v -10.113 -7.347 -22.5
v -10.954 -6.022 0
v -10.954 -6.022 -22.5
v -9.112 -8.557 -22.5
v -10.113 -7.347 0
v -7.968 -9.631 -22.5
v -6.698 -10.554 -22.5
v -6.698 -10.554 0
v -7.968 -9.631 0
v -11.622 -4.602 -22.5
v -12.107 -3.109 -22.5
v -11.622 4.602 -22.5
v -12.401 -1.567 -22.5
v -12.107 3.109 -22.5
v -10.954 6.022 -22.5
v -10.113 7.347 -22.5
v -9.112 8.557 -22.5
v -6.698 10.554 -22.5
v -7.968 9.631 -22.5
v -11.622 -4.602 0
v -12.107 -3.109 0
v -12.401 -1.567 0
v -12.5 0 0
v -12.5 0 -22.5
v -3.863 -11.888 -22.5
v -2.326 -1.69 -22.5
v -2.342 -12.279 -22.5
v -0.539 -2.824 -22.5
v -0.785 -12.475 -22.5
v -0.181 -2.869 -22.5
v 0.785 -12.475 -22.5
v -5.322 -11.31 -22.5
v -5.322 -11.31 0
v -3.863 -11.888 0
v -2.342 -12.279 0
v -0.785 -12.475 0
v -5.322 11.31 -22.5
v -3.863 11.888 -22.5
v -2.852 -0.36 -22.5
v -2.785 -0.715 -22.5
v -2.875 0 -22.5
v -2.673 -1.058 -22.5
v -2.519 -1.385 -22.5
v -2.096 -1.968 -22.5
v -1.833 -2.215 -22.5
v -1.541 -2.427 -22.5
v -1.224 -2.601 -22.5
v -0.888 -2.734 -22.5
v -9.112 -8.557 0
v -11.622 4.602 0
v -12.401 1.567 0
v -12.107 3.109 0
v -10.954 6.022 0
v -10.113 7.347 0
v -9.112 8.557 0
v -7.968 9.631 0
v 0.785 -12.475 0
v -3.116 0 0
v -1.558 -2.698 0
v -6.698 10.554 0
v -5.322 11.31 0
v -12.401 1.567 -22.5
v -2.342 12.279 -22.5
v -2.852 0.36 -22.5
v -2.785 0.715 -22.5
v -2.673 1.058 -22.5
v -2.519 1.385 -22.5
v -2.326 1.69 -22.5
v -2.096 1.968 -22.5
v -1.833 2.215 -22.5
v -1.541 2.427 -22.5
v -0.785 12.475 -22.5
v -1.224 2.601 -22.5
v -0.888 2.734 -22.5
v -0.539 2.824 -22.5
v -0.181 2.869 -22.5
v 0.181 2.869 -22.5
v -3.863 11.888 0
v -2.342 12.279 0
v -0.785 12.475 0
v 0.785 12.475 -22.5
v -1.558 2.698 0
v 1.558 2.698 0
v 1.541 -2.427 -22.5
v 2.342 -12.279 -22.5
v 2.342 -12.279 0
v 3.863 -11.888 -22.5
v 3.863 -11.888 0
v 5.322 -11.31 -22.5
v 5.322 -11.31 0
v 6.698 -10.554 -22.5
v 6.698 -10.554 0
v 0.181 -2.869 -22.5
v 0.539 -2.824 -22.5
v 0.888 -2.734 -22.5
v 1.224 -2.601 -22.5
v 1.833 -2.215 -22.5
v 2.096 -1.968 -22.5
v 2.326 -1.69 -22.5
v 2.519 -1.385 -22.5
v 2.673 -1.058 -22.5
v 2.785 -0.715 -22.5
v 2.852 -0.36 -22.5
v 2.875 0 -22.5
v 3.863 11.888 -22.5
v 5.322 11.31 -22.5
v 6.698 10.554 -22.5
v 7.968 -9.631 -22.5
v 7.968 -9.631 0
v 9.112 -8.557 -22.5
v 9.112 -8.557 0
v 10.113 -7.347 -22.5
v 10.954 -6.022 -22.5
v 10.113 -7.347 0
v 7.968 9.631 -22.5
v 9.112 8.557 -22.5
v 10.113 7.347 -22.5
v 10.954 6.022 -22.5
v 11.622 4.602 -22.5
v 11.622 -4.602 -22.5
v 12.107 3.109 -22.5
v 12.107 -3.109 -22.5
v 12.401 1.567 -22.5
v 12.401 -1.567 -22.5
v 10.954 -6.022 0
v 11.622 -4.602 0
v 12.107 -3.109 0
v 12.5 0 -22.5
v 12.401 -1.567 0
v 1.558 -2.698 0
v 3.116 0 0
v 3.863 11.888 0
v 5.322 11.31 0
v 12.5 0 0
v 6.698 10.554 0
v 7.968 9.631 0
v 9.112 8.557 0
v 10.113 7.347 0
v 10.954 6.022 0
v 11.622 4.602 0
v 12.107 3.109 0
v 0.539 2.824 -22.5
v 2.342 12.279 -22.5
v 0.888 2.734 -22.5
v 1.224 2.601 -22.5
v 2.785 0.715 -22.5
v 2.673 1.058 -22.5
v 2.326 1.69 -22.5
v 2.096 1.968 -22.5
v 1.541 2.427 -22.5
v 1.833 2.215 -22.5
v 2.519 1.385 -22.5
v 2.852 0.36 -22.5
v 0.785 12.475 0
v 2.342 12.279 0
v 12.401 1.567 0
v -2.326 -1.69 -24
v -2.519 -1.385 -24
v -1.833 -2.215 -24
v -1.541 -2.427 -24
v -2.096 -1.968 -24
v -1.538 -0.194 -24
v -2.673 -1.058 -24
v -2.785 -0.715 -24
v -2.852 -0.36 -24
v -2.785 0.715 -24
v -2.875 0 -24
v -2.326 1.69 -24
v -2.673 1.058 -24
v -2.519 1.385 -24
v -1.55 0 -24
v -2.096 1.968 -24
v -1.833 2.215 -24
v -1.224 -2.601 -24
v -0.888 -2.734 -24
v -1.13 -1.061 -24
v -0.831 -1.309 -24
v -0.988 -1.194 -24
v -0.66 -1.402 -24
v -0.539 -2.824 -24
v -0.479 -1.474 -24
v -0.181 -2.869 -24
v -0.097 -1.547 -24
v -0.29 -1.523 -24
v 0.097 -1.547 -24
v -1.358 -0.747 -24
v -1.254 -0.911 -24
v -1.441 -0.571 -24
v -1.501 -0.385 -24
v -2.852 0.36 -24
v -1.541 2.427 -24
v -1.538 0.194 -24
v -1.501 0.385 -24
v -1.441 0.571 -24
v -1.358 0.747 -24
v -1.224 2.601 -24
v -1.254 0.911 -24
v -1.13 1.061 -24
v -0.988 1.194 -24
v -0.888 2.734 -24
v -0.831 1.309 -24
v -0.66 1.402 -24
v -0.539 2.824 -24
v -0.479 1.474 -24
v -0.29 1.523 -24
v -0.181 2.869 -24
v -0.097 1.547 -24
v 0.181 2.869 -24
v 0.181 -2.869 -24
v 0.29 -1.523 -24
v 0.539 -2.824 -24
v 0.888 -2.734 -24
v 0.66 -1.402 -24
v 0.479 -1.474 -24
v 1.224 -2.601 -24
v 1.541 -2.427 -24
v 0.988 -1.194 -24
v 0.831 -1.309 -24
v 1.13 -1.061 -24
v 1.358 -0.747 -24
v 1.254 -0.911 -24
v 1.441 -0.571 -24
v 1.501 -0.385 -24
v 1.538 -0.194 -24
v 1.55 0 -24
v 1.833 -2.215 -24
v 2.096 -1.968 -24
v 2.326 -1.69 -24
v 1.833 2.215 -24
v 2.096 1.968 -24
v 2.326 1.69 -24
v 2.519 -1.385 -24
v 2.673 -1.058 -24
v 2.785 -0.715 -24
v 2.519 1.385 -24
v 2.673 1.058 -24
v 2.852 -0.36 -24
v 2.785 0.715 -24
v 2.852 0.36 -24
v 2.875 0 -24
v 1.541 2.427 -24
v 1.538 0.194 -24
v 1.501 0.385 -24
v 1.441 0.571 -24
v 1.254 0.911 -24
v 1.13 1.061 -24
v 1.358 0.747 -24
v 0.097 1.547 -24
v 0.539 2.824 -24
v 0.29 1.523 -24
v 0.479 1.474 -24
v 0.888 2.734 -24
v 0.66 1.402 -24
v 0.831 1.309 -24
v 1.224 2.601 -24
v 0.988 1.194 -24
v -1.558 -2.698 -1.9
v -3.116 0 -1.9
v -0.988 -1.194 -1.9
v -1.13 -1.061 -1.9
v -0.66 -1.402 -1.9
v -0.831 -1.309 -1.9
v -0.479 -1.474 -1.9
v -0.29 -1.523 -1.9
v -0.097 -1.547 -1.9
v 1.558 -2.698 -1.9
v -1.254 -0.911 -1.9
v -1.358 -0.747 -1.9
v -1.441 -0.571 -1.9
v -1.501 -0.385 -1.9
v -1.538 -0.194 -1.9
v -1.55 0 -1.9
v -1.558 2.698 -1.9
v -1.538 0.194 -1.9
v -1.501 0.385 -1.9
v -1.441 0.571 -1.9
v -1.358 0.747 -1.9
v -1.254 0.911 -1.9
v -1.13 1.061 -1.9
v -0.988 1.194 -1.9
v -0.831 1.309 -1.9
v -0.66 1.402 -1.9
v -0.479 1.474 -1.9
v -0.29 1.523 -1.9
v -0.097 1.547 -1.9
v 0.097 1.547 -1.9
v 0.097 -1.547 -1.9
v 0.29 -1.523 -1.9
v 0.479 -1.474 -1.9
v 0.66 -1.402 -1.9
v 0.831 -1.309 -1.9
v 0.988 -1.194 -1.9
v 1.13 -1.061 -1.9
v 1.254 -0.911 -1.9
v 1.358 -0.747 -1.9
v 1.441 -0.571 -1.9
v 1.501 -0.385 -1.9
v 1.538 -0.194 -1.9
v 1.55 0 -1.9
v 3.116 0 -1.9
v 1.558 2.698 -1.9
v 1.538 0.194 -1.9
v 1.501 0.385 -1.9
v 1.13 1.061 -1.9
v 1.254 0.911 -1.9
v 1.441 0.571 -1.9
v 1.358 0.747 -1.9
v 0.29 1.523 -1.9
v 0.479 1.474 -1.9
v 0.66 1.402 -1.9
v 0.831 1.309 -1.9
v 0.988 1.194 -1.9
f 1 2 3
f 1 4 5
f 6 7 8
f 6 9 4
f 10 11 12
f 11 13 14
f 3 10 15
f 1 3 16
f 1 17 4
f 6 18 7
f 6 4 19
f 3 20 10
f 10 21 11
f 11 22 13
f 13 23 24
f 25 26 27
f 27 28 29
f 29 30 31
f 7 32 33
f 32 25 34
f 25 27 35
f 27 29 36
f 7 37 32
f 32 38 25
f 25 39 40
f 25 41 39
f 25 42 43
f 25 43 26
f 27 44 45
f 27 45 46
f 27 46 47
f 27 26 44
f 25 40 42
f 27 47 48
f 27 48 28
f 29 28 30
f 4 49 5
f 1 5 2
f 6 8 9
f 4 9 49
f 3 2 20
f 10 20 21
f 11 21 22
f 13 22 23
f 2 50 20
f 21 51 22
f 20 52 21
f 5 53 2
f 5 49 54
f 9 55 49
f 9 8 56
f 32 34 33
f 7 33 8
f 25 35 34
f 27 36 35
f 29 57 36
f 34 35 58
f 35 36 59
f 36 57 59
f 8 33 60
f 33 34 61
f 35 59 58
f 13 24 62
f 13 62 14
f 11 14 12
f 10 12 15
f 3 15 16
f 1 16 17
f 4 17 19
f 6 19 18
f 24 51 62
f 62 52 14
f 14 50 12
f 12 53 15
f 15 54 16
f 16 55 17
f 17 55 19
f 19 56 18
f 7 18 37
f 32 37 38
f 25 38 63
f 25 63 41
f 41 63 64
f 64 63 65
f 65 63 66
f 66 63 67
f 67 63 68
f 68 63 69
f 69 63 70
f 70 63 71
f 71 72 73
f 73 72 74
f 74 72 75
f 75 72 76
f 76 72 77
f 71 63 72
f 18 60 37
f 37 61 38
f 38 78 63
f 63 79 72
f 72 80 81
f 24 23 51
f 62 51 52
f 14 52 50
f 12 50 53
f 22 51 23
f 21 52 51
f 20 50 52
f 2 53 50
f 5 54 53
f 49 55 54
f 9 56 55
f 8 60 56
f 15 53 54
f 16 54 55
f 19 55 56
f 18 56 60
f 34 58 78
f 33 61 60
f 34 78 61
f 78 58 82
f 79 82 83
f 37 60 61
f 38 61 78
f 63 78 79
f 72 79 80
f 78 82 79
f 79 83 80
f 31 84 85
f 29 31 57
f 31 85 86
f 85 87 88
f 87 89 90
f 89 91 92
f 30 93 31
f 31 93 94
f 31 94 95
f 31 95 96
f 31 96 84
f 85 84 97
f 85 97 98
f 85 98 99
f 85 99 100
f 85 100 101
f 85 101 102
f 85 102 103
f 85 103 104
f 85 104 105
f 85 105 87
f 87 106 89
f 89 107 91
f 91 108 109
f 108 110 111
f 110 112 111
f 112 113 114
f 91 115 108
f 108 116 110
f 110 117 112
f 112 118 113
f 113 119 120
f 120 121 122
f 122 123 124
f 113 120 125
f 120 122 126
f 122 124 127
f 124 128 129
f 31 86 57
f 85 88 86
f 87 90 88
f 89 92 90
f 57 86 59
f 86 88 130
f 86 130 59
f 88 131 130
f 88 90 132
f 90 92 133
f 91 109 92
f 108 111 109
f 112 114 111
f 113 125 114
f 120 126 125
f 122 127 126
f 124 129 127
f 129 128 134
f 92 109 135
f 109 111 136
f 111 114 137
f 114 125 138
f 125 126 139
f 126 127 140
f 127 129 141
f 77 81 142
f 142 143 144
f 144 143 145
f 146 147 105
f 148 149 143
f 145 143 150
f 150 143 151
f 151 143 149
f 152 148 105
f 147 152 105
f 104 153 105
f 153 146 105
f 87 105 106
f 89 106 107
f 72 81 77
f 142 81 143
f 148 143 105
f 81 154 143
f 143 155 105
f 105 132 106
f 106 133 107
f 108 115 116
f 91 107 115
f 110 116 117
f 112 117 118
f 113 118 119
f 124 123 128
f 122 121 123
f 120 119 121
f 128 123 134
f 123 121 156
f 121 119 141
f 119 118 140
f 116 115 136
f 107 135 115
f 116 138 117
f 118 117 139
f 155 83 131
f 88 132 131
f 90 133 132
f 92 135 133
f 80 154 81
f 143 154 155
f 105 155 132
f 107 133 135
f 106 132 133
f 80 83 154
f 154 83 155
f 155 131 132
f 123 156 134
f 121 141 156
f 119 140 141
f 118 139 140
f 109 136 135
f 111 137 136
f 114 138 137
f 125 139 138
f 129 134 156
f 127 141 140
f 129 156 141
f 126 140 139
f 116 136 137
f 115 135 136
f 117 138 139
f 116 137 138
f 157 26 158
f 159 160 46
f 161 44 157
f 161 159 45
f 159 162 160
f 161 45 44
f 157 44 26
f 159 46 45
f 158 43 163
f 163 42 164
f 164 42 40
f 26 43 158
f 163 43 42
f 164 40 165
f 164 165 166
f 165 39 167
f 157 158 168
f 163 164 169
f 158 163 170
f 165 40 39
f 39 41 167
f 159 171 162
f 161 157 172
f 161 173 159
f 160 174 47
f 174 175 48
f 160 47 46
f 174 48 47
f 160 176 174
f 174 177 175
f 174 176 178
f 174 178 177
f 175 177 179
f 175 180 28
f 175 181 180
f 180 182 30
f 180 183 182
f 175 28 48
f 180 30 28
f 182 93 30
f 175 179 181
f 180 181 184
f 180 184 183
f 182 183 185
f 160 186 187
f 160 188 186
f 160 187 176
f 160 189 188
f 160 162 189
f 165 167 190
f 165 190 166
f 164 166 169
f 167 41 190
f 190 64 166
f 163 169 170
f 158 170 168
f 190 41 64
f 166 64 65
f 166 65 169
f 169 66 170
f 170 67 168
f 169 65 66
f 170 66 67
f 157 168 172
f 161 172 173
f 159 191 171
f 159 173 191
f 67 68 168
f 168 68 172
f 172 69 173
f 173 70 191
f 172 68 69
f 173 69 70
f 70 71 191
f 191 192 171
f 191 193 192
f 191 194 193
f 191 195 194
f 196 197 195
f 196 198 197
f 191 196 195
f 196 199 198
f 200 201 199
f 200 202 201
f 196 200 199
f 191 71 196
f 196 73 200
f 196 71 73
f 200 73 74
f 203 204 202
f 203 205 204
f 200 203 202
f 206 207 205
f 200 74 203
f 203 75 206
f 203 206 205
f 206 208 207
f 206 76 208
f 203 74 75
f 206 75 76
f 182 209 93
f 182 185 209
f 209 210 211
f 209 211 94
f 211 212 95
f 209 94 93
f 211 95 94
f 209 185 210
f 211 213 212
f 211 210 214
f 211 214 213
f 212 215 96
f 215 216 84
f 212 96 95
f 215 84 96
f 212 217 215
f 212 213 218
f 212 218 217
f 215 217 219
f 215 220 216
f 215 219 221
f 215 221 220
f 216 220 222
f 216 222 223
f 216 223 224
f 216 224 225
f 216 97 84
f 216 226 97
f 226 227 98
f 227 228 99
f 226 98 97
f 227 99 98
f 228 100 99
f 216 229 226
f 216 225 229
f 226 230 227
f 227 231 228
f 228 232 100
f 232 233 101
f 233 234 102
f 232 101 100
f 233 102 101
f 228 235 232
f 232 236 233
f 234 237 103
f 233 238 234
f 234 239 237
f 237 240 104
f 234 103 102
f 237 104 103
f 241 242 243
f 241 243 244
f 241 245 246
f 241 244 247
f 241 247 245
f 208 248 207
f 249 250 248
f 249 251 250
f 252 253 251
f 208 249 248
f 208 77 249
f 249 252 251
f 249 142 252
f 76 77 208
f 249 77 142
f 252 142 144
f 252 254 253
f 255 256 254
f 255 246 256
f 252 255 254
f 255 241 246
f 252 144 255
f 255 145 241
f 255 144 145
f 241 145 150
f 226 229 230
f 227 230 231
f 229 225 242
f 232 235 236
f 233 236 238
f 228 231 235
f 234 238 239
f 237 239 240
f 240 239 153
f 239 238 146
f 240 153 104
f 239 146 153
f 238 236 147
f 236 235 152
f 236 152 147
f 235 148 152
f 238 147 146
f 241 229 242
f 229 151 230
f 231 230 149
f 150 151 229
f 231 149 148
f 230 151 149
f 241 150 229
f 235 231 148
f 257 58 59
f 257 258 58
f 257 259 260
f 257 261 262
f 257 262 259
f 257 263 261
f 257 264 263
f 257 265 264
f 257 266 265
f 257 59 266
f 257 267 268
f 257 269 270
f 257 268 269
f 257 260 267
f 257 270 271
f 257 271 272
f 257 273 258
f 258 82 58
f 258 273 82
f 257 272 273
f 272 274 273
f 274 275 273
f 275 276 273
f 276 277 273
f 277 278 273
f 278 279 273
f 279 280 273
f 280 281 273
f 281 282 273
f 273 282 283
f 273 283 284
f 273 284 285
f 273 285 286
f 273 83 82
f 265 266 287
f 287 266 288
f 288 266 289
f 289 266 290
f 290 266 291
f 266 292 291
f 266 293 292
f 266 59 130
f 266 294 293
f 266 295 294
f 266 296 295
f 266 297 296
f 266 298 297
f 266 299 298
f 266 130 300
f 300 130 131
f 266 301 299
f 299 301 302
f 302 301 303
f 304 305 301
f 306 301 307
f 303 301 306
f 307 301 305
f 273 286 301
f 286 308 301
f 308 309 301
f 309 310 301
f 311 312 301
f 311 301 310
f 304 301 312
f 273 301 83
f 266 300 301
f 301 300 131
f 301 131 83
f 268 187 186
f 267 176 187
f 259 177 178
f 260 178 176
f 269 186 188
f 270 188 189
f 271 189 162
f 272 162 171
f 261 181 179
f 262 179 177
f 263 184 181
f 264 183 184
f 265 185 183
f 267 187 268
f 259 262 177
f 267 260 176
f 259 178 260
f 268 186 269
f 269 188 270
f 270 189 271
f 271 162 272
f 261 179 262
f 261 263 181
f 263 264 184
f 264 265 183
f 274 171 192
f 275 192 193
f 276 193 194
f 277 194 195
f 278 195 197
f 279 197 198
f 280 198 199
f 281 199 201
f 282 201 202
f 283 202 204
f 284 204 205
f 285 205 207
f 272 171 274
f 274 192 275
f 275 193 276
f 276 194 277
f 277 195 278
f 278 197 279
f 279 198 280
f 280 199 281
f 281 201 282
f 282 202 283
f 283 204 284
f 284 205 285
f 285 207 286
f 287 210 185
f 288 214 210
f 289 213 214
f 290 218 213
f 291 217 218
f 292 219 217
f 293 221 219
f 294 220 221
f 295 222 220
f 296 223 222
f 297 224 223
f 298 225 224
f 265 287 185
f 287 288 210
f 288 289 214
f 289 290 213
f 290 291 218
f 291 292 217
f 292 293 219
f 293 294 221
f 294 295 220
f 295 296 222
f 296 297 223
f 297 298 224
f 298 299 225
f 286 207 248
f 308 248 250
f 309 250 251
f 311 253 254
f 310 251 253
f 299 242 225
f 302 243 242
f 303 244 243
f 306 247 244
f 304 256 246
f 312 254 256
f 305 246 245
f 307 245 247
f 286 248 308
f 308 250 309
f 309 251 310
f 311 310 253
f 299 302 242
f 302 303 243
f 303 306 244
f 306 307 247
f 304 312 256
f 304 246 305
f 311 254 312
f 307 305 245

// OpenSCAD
$fn = 50;


difference() {
	union() {
		translate(v = [0, 0, -22.5000000000]) {
			cylinder(h = 22.5000000000, r = 12.5000000000);
		}
		#translate(v = [0, 0, -24.0000000000]) {
			cylinder(h = 24, r = 2.8750000000);
		}
	}
	union() {
		translate(v = [0, 0, 0]) {
			rotate(a = [0, 0, 0]) {
				difference() {
					union() {
						translate(v = [0, 0, -1.9000000000]) {
							linear_extrude(height = 1.9000000000) {
								polygon(points = [[3.1158000000, 0.0000000000], [1.5579000000, 2.6983619531], [-1.5579000000, 2.6983619531], [-3.1158000000, 0.0000000000], [-1.5579000000, -2.6983619531], [1.5579000000, -2.6983619531]]);
							}
						}
					}
					union();
				}
			}
		}
		#translate(v = [0, 0, -100.0000000000]) {
			cylinder(h = 200, r = 1.5500000000);
		}
	}
}
